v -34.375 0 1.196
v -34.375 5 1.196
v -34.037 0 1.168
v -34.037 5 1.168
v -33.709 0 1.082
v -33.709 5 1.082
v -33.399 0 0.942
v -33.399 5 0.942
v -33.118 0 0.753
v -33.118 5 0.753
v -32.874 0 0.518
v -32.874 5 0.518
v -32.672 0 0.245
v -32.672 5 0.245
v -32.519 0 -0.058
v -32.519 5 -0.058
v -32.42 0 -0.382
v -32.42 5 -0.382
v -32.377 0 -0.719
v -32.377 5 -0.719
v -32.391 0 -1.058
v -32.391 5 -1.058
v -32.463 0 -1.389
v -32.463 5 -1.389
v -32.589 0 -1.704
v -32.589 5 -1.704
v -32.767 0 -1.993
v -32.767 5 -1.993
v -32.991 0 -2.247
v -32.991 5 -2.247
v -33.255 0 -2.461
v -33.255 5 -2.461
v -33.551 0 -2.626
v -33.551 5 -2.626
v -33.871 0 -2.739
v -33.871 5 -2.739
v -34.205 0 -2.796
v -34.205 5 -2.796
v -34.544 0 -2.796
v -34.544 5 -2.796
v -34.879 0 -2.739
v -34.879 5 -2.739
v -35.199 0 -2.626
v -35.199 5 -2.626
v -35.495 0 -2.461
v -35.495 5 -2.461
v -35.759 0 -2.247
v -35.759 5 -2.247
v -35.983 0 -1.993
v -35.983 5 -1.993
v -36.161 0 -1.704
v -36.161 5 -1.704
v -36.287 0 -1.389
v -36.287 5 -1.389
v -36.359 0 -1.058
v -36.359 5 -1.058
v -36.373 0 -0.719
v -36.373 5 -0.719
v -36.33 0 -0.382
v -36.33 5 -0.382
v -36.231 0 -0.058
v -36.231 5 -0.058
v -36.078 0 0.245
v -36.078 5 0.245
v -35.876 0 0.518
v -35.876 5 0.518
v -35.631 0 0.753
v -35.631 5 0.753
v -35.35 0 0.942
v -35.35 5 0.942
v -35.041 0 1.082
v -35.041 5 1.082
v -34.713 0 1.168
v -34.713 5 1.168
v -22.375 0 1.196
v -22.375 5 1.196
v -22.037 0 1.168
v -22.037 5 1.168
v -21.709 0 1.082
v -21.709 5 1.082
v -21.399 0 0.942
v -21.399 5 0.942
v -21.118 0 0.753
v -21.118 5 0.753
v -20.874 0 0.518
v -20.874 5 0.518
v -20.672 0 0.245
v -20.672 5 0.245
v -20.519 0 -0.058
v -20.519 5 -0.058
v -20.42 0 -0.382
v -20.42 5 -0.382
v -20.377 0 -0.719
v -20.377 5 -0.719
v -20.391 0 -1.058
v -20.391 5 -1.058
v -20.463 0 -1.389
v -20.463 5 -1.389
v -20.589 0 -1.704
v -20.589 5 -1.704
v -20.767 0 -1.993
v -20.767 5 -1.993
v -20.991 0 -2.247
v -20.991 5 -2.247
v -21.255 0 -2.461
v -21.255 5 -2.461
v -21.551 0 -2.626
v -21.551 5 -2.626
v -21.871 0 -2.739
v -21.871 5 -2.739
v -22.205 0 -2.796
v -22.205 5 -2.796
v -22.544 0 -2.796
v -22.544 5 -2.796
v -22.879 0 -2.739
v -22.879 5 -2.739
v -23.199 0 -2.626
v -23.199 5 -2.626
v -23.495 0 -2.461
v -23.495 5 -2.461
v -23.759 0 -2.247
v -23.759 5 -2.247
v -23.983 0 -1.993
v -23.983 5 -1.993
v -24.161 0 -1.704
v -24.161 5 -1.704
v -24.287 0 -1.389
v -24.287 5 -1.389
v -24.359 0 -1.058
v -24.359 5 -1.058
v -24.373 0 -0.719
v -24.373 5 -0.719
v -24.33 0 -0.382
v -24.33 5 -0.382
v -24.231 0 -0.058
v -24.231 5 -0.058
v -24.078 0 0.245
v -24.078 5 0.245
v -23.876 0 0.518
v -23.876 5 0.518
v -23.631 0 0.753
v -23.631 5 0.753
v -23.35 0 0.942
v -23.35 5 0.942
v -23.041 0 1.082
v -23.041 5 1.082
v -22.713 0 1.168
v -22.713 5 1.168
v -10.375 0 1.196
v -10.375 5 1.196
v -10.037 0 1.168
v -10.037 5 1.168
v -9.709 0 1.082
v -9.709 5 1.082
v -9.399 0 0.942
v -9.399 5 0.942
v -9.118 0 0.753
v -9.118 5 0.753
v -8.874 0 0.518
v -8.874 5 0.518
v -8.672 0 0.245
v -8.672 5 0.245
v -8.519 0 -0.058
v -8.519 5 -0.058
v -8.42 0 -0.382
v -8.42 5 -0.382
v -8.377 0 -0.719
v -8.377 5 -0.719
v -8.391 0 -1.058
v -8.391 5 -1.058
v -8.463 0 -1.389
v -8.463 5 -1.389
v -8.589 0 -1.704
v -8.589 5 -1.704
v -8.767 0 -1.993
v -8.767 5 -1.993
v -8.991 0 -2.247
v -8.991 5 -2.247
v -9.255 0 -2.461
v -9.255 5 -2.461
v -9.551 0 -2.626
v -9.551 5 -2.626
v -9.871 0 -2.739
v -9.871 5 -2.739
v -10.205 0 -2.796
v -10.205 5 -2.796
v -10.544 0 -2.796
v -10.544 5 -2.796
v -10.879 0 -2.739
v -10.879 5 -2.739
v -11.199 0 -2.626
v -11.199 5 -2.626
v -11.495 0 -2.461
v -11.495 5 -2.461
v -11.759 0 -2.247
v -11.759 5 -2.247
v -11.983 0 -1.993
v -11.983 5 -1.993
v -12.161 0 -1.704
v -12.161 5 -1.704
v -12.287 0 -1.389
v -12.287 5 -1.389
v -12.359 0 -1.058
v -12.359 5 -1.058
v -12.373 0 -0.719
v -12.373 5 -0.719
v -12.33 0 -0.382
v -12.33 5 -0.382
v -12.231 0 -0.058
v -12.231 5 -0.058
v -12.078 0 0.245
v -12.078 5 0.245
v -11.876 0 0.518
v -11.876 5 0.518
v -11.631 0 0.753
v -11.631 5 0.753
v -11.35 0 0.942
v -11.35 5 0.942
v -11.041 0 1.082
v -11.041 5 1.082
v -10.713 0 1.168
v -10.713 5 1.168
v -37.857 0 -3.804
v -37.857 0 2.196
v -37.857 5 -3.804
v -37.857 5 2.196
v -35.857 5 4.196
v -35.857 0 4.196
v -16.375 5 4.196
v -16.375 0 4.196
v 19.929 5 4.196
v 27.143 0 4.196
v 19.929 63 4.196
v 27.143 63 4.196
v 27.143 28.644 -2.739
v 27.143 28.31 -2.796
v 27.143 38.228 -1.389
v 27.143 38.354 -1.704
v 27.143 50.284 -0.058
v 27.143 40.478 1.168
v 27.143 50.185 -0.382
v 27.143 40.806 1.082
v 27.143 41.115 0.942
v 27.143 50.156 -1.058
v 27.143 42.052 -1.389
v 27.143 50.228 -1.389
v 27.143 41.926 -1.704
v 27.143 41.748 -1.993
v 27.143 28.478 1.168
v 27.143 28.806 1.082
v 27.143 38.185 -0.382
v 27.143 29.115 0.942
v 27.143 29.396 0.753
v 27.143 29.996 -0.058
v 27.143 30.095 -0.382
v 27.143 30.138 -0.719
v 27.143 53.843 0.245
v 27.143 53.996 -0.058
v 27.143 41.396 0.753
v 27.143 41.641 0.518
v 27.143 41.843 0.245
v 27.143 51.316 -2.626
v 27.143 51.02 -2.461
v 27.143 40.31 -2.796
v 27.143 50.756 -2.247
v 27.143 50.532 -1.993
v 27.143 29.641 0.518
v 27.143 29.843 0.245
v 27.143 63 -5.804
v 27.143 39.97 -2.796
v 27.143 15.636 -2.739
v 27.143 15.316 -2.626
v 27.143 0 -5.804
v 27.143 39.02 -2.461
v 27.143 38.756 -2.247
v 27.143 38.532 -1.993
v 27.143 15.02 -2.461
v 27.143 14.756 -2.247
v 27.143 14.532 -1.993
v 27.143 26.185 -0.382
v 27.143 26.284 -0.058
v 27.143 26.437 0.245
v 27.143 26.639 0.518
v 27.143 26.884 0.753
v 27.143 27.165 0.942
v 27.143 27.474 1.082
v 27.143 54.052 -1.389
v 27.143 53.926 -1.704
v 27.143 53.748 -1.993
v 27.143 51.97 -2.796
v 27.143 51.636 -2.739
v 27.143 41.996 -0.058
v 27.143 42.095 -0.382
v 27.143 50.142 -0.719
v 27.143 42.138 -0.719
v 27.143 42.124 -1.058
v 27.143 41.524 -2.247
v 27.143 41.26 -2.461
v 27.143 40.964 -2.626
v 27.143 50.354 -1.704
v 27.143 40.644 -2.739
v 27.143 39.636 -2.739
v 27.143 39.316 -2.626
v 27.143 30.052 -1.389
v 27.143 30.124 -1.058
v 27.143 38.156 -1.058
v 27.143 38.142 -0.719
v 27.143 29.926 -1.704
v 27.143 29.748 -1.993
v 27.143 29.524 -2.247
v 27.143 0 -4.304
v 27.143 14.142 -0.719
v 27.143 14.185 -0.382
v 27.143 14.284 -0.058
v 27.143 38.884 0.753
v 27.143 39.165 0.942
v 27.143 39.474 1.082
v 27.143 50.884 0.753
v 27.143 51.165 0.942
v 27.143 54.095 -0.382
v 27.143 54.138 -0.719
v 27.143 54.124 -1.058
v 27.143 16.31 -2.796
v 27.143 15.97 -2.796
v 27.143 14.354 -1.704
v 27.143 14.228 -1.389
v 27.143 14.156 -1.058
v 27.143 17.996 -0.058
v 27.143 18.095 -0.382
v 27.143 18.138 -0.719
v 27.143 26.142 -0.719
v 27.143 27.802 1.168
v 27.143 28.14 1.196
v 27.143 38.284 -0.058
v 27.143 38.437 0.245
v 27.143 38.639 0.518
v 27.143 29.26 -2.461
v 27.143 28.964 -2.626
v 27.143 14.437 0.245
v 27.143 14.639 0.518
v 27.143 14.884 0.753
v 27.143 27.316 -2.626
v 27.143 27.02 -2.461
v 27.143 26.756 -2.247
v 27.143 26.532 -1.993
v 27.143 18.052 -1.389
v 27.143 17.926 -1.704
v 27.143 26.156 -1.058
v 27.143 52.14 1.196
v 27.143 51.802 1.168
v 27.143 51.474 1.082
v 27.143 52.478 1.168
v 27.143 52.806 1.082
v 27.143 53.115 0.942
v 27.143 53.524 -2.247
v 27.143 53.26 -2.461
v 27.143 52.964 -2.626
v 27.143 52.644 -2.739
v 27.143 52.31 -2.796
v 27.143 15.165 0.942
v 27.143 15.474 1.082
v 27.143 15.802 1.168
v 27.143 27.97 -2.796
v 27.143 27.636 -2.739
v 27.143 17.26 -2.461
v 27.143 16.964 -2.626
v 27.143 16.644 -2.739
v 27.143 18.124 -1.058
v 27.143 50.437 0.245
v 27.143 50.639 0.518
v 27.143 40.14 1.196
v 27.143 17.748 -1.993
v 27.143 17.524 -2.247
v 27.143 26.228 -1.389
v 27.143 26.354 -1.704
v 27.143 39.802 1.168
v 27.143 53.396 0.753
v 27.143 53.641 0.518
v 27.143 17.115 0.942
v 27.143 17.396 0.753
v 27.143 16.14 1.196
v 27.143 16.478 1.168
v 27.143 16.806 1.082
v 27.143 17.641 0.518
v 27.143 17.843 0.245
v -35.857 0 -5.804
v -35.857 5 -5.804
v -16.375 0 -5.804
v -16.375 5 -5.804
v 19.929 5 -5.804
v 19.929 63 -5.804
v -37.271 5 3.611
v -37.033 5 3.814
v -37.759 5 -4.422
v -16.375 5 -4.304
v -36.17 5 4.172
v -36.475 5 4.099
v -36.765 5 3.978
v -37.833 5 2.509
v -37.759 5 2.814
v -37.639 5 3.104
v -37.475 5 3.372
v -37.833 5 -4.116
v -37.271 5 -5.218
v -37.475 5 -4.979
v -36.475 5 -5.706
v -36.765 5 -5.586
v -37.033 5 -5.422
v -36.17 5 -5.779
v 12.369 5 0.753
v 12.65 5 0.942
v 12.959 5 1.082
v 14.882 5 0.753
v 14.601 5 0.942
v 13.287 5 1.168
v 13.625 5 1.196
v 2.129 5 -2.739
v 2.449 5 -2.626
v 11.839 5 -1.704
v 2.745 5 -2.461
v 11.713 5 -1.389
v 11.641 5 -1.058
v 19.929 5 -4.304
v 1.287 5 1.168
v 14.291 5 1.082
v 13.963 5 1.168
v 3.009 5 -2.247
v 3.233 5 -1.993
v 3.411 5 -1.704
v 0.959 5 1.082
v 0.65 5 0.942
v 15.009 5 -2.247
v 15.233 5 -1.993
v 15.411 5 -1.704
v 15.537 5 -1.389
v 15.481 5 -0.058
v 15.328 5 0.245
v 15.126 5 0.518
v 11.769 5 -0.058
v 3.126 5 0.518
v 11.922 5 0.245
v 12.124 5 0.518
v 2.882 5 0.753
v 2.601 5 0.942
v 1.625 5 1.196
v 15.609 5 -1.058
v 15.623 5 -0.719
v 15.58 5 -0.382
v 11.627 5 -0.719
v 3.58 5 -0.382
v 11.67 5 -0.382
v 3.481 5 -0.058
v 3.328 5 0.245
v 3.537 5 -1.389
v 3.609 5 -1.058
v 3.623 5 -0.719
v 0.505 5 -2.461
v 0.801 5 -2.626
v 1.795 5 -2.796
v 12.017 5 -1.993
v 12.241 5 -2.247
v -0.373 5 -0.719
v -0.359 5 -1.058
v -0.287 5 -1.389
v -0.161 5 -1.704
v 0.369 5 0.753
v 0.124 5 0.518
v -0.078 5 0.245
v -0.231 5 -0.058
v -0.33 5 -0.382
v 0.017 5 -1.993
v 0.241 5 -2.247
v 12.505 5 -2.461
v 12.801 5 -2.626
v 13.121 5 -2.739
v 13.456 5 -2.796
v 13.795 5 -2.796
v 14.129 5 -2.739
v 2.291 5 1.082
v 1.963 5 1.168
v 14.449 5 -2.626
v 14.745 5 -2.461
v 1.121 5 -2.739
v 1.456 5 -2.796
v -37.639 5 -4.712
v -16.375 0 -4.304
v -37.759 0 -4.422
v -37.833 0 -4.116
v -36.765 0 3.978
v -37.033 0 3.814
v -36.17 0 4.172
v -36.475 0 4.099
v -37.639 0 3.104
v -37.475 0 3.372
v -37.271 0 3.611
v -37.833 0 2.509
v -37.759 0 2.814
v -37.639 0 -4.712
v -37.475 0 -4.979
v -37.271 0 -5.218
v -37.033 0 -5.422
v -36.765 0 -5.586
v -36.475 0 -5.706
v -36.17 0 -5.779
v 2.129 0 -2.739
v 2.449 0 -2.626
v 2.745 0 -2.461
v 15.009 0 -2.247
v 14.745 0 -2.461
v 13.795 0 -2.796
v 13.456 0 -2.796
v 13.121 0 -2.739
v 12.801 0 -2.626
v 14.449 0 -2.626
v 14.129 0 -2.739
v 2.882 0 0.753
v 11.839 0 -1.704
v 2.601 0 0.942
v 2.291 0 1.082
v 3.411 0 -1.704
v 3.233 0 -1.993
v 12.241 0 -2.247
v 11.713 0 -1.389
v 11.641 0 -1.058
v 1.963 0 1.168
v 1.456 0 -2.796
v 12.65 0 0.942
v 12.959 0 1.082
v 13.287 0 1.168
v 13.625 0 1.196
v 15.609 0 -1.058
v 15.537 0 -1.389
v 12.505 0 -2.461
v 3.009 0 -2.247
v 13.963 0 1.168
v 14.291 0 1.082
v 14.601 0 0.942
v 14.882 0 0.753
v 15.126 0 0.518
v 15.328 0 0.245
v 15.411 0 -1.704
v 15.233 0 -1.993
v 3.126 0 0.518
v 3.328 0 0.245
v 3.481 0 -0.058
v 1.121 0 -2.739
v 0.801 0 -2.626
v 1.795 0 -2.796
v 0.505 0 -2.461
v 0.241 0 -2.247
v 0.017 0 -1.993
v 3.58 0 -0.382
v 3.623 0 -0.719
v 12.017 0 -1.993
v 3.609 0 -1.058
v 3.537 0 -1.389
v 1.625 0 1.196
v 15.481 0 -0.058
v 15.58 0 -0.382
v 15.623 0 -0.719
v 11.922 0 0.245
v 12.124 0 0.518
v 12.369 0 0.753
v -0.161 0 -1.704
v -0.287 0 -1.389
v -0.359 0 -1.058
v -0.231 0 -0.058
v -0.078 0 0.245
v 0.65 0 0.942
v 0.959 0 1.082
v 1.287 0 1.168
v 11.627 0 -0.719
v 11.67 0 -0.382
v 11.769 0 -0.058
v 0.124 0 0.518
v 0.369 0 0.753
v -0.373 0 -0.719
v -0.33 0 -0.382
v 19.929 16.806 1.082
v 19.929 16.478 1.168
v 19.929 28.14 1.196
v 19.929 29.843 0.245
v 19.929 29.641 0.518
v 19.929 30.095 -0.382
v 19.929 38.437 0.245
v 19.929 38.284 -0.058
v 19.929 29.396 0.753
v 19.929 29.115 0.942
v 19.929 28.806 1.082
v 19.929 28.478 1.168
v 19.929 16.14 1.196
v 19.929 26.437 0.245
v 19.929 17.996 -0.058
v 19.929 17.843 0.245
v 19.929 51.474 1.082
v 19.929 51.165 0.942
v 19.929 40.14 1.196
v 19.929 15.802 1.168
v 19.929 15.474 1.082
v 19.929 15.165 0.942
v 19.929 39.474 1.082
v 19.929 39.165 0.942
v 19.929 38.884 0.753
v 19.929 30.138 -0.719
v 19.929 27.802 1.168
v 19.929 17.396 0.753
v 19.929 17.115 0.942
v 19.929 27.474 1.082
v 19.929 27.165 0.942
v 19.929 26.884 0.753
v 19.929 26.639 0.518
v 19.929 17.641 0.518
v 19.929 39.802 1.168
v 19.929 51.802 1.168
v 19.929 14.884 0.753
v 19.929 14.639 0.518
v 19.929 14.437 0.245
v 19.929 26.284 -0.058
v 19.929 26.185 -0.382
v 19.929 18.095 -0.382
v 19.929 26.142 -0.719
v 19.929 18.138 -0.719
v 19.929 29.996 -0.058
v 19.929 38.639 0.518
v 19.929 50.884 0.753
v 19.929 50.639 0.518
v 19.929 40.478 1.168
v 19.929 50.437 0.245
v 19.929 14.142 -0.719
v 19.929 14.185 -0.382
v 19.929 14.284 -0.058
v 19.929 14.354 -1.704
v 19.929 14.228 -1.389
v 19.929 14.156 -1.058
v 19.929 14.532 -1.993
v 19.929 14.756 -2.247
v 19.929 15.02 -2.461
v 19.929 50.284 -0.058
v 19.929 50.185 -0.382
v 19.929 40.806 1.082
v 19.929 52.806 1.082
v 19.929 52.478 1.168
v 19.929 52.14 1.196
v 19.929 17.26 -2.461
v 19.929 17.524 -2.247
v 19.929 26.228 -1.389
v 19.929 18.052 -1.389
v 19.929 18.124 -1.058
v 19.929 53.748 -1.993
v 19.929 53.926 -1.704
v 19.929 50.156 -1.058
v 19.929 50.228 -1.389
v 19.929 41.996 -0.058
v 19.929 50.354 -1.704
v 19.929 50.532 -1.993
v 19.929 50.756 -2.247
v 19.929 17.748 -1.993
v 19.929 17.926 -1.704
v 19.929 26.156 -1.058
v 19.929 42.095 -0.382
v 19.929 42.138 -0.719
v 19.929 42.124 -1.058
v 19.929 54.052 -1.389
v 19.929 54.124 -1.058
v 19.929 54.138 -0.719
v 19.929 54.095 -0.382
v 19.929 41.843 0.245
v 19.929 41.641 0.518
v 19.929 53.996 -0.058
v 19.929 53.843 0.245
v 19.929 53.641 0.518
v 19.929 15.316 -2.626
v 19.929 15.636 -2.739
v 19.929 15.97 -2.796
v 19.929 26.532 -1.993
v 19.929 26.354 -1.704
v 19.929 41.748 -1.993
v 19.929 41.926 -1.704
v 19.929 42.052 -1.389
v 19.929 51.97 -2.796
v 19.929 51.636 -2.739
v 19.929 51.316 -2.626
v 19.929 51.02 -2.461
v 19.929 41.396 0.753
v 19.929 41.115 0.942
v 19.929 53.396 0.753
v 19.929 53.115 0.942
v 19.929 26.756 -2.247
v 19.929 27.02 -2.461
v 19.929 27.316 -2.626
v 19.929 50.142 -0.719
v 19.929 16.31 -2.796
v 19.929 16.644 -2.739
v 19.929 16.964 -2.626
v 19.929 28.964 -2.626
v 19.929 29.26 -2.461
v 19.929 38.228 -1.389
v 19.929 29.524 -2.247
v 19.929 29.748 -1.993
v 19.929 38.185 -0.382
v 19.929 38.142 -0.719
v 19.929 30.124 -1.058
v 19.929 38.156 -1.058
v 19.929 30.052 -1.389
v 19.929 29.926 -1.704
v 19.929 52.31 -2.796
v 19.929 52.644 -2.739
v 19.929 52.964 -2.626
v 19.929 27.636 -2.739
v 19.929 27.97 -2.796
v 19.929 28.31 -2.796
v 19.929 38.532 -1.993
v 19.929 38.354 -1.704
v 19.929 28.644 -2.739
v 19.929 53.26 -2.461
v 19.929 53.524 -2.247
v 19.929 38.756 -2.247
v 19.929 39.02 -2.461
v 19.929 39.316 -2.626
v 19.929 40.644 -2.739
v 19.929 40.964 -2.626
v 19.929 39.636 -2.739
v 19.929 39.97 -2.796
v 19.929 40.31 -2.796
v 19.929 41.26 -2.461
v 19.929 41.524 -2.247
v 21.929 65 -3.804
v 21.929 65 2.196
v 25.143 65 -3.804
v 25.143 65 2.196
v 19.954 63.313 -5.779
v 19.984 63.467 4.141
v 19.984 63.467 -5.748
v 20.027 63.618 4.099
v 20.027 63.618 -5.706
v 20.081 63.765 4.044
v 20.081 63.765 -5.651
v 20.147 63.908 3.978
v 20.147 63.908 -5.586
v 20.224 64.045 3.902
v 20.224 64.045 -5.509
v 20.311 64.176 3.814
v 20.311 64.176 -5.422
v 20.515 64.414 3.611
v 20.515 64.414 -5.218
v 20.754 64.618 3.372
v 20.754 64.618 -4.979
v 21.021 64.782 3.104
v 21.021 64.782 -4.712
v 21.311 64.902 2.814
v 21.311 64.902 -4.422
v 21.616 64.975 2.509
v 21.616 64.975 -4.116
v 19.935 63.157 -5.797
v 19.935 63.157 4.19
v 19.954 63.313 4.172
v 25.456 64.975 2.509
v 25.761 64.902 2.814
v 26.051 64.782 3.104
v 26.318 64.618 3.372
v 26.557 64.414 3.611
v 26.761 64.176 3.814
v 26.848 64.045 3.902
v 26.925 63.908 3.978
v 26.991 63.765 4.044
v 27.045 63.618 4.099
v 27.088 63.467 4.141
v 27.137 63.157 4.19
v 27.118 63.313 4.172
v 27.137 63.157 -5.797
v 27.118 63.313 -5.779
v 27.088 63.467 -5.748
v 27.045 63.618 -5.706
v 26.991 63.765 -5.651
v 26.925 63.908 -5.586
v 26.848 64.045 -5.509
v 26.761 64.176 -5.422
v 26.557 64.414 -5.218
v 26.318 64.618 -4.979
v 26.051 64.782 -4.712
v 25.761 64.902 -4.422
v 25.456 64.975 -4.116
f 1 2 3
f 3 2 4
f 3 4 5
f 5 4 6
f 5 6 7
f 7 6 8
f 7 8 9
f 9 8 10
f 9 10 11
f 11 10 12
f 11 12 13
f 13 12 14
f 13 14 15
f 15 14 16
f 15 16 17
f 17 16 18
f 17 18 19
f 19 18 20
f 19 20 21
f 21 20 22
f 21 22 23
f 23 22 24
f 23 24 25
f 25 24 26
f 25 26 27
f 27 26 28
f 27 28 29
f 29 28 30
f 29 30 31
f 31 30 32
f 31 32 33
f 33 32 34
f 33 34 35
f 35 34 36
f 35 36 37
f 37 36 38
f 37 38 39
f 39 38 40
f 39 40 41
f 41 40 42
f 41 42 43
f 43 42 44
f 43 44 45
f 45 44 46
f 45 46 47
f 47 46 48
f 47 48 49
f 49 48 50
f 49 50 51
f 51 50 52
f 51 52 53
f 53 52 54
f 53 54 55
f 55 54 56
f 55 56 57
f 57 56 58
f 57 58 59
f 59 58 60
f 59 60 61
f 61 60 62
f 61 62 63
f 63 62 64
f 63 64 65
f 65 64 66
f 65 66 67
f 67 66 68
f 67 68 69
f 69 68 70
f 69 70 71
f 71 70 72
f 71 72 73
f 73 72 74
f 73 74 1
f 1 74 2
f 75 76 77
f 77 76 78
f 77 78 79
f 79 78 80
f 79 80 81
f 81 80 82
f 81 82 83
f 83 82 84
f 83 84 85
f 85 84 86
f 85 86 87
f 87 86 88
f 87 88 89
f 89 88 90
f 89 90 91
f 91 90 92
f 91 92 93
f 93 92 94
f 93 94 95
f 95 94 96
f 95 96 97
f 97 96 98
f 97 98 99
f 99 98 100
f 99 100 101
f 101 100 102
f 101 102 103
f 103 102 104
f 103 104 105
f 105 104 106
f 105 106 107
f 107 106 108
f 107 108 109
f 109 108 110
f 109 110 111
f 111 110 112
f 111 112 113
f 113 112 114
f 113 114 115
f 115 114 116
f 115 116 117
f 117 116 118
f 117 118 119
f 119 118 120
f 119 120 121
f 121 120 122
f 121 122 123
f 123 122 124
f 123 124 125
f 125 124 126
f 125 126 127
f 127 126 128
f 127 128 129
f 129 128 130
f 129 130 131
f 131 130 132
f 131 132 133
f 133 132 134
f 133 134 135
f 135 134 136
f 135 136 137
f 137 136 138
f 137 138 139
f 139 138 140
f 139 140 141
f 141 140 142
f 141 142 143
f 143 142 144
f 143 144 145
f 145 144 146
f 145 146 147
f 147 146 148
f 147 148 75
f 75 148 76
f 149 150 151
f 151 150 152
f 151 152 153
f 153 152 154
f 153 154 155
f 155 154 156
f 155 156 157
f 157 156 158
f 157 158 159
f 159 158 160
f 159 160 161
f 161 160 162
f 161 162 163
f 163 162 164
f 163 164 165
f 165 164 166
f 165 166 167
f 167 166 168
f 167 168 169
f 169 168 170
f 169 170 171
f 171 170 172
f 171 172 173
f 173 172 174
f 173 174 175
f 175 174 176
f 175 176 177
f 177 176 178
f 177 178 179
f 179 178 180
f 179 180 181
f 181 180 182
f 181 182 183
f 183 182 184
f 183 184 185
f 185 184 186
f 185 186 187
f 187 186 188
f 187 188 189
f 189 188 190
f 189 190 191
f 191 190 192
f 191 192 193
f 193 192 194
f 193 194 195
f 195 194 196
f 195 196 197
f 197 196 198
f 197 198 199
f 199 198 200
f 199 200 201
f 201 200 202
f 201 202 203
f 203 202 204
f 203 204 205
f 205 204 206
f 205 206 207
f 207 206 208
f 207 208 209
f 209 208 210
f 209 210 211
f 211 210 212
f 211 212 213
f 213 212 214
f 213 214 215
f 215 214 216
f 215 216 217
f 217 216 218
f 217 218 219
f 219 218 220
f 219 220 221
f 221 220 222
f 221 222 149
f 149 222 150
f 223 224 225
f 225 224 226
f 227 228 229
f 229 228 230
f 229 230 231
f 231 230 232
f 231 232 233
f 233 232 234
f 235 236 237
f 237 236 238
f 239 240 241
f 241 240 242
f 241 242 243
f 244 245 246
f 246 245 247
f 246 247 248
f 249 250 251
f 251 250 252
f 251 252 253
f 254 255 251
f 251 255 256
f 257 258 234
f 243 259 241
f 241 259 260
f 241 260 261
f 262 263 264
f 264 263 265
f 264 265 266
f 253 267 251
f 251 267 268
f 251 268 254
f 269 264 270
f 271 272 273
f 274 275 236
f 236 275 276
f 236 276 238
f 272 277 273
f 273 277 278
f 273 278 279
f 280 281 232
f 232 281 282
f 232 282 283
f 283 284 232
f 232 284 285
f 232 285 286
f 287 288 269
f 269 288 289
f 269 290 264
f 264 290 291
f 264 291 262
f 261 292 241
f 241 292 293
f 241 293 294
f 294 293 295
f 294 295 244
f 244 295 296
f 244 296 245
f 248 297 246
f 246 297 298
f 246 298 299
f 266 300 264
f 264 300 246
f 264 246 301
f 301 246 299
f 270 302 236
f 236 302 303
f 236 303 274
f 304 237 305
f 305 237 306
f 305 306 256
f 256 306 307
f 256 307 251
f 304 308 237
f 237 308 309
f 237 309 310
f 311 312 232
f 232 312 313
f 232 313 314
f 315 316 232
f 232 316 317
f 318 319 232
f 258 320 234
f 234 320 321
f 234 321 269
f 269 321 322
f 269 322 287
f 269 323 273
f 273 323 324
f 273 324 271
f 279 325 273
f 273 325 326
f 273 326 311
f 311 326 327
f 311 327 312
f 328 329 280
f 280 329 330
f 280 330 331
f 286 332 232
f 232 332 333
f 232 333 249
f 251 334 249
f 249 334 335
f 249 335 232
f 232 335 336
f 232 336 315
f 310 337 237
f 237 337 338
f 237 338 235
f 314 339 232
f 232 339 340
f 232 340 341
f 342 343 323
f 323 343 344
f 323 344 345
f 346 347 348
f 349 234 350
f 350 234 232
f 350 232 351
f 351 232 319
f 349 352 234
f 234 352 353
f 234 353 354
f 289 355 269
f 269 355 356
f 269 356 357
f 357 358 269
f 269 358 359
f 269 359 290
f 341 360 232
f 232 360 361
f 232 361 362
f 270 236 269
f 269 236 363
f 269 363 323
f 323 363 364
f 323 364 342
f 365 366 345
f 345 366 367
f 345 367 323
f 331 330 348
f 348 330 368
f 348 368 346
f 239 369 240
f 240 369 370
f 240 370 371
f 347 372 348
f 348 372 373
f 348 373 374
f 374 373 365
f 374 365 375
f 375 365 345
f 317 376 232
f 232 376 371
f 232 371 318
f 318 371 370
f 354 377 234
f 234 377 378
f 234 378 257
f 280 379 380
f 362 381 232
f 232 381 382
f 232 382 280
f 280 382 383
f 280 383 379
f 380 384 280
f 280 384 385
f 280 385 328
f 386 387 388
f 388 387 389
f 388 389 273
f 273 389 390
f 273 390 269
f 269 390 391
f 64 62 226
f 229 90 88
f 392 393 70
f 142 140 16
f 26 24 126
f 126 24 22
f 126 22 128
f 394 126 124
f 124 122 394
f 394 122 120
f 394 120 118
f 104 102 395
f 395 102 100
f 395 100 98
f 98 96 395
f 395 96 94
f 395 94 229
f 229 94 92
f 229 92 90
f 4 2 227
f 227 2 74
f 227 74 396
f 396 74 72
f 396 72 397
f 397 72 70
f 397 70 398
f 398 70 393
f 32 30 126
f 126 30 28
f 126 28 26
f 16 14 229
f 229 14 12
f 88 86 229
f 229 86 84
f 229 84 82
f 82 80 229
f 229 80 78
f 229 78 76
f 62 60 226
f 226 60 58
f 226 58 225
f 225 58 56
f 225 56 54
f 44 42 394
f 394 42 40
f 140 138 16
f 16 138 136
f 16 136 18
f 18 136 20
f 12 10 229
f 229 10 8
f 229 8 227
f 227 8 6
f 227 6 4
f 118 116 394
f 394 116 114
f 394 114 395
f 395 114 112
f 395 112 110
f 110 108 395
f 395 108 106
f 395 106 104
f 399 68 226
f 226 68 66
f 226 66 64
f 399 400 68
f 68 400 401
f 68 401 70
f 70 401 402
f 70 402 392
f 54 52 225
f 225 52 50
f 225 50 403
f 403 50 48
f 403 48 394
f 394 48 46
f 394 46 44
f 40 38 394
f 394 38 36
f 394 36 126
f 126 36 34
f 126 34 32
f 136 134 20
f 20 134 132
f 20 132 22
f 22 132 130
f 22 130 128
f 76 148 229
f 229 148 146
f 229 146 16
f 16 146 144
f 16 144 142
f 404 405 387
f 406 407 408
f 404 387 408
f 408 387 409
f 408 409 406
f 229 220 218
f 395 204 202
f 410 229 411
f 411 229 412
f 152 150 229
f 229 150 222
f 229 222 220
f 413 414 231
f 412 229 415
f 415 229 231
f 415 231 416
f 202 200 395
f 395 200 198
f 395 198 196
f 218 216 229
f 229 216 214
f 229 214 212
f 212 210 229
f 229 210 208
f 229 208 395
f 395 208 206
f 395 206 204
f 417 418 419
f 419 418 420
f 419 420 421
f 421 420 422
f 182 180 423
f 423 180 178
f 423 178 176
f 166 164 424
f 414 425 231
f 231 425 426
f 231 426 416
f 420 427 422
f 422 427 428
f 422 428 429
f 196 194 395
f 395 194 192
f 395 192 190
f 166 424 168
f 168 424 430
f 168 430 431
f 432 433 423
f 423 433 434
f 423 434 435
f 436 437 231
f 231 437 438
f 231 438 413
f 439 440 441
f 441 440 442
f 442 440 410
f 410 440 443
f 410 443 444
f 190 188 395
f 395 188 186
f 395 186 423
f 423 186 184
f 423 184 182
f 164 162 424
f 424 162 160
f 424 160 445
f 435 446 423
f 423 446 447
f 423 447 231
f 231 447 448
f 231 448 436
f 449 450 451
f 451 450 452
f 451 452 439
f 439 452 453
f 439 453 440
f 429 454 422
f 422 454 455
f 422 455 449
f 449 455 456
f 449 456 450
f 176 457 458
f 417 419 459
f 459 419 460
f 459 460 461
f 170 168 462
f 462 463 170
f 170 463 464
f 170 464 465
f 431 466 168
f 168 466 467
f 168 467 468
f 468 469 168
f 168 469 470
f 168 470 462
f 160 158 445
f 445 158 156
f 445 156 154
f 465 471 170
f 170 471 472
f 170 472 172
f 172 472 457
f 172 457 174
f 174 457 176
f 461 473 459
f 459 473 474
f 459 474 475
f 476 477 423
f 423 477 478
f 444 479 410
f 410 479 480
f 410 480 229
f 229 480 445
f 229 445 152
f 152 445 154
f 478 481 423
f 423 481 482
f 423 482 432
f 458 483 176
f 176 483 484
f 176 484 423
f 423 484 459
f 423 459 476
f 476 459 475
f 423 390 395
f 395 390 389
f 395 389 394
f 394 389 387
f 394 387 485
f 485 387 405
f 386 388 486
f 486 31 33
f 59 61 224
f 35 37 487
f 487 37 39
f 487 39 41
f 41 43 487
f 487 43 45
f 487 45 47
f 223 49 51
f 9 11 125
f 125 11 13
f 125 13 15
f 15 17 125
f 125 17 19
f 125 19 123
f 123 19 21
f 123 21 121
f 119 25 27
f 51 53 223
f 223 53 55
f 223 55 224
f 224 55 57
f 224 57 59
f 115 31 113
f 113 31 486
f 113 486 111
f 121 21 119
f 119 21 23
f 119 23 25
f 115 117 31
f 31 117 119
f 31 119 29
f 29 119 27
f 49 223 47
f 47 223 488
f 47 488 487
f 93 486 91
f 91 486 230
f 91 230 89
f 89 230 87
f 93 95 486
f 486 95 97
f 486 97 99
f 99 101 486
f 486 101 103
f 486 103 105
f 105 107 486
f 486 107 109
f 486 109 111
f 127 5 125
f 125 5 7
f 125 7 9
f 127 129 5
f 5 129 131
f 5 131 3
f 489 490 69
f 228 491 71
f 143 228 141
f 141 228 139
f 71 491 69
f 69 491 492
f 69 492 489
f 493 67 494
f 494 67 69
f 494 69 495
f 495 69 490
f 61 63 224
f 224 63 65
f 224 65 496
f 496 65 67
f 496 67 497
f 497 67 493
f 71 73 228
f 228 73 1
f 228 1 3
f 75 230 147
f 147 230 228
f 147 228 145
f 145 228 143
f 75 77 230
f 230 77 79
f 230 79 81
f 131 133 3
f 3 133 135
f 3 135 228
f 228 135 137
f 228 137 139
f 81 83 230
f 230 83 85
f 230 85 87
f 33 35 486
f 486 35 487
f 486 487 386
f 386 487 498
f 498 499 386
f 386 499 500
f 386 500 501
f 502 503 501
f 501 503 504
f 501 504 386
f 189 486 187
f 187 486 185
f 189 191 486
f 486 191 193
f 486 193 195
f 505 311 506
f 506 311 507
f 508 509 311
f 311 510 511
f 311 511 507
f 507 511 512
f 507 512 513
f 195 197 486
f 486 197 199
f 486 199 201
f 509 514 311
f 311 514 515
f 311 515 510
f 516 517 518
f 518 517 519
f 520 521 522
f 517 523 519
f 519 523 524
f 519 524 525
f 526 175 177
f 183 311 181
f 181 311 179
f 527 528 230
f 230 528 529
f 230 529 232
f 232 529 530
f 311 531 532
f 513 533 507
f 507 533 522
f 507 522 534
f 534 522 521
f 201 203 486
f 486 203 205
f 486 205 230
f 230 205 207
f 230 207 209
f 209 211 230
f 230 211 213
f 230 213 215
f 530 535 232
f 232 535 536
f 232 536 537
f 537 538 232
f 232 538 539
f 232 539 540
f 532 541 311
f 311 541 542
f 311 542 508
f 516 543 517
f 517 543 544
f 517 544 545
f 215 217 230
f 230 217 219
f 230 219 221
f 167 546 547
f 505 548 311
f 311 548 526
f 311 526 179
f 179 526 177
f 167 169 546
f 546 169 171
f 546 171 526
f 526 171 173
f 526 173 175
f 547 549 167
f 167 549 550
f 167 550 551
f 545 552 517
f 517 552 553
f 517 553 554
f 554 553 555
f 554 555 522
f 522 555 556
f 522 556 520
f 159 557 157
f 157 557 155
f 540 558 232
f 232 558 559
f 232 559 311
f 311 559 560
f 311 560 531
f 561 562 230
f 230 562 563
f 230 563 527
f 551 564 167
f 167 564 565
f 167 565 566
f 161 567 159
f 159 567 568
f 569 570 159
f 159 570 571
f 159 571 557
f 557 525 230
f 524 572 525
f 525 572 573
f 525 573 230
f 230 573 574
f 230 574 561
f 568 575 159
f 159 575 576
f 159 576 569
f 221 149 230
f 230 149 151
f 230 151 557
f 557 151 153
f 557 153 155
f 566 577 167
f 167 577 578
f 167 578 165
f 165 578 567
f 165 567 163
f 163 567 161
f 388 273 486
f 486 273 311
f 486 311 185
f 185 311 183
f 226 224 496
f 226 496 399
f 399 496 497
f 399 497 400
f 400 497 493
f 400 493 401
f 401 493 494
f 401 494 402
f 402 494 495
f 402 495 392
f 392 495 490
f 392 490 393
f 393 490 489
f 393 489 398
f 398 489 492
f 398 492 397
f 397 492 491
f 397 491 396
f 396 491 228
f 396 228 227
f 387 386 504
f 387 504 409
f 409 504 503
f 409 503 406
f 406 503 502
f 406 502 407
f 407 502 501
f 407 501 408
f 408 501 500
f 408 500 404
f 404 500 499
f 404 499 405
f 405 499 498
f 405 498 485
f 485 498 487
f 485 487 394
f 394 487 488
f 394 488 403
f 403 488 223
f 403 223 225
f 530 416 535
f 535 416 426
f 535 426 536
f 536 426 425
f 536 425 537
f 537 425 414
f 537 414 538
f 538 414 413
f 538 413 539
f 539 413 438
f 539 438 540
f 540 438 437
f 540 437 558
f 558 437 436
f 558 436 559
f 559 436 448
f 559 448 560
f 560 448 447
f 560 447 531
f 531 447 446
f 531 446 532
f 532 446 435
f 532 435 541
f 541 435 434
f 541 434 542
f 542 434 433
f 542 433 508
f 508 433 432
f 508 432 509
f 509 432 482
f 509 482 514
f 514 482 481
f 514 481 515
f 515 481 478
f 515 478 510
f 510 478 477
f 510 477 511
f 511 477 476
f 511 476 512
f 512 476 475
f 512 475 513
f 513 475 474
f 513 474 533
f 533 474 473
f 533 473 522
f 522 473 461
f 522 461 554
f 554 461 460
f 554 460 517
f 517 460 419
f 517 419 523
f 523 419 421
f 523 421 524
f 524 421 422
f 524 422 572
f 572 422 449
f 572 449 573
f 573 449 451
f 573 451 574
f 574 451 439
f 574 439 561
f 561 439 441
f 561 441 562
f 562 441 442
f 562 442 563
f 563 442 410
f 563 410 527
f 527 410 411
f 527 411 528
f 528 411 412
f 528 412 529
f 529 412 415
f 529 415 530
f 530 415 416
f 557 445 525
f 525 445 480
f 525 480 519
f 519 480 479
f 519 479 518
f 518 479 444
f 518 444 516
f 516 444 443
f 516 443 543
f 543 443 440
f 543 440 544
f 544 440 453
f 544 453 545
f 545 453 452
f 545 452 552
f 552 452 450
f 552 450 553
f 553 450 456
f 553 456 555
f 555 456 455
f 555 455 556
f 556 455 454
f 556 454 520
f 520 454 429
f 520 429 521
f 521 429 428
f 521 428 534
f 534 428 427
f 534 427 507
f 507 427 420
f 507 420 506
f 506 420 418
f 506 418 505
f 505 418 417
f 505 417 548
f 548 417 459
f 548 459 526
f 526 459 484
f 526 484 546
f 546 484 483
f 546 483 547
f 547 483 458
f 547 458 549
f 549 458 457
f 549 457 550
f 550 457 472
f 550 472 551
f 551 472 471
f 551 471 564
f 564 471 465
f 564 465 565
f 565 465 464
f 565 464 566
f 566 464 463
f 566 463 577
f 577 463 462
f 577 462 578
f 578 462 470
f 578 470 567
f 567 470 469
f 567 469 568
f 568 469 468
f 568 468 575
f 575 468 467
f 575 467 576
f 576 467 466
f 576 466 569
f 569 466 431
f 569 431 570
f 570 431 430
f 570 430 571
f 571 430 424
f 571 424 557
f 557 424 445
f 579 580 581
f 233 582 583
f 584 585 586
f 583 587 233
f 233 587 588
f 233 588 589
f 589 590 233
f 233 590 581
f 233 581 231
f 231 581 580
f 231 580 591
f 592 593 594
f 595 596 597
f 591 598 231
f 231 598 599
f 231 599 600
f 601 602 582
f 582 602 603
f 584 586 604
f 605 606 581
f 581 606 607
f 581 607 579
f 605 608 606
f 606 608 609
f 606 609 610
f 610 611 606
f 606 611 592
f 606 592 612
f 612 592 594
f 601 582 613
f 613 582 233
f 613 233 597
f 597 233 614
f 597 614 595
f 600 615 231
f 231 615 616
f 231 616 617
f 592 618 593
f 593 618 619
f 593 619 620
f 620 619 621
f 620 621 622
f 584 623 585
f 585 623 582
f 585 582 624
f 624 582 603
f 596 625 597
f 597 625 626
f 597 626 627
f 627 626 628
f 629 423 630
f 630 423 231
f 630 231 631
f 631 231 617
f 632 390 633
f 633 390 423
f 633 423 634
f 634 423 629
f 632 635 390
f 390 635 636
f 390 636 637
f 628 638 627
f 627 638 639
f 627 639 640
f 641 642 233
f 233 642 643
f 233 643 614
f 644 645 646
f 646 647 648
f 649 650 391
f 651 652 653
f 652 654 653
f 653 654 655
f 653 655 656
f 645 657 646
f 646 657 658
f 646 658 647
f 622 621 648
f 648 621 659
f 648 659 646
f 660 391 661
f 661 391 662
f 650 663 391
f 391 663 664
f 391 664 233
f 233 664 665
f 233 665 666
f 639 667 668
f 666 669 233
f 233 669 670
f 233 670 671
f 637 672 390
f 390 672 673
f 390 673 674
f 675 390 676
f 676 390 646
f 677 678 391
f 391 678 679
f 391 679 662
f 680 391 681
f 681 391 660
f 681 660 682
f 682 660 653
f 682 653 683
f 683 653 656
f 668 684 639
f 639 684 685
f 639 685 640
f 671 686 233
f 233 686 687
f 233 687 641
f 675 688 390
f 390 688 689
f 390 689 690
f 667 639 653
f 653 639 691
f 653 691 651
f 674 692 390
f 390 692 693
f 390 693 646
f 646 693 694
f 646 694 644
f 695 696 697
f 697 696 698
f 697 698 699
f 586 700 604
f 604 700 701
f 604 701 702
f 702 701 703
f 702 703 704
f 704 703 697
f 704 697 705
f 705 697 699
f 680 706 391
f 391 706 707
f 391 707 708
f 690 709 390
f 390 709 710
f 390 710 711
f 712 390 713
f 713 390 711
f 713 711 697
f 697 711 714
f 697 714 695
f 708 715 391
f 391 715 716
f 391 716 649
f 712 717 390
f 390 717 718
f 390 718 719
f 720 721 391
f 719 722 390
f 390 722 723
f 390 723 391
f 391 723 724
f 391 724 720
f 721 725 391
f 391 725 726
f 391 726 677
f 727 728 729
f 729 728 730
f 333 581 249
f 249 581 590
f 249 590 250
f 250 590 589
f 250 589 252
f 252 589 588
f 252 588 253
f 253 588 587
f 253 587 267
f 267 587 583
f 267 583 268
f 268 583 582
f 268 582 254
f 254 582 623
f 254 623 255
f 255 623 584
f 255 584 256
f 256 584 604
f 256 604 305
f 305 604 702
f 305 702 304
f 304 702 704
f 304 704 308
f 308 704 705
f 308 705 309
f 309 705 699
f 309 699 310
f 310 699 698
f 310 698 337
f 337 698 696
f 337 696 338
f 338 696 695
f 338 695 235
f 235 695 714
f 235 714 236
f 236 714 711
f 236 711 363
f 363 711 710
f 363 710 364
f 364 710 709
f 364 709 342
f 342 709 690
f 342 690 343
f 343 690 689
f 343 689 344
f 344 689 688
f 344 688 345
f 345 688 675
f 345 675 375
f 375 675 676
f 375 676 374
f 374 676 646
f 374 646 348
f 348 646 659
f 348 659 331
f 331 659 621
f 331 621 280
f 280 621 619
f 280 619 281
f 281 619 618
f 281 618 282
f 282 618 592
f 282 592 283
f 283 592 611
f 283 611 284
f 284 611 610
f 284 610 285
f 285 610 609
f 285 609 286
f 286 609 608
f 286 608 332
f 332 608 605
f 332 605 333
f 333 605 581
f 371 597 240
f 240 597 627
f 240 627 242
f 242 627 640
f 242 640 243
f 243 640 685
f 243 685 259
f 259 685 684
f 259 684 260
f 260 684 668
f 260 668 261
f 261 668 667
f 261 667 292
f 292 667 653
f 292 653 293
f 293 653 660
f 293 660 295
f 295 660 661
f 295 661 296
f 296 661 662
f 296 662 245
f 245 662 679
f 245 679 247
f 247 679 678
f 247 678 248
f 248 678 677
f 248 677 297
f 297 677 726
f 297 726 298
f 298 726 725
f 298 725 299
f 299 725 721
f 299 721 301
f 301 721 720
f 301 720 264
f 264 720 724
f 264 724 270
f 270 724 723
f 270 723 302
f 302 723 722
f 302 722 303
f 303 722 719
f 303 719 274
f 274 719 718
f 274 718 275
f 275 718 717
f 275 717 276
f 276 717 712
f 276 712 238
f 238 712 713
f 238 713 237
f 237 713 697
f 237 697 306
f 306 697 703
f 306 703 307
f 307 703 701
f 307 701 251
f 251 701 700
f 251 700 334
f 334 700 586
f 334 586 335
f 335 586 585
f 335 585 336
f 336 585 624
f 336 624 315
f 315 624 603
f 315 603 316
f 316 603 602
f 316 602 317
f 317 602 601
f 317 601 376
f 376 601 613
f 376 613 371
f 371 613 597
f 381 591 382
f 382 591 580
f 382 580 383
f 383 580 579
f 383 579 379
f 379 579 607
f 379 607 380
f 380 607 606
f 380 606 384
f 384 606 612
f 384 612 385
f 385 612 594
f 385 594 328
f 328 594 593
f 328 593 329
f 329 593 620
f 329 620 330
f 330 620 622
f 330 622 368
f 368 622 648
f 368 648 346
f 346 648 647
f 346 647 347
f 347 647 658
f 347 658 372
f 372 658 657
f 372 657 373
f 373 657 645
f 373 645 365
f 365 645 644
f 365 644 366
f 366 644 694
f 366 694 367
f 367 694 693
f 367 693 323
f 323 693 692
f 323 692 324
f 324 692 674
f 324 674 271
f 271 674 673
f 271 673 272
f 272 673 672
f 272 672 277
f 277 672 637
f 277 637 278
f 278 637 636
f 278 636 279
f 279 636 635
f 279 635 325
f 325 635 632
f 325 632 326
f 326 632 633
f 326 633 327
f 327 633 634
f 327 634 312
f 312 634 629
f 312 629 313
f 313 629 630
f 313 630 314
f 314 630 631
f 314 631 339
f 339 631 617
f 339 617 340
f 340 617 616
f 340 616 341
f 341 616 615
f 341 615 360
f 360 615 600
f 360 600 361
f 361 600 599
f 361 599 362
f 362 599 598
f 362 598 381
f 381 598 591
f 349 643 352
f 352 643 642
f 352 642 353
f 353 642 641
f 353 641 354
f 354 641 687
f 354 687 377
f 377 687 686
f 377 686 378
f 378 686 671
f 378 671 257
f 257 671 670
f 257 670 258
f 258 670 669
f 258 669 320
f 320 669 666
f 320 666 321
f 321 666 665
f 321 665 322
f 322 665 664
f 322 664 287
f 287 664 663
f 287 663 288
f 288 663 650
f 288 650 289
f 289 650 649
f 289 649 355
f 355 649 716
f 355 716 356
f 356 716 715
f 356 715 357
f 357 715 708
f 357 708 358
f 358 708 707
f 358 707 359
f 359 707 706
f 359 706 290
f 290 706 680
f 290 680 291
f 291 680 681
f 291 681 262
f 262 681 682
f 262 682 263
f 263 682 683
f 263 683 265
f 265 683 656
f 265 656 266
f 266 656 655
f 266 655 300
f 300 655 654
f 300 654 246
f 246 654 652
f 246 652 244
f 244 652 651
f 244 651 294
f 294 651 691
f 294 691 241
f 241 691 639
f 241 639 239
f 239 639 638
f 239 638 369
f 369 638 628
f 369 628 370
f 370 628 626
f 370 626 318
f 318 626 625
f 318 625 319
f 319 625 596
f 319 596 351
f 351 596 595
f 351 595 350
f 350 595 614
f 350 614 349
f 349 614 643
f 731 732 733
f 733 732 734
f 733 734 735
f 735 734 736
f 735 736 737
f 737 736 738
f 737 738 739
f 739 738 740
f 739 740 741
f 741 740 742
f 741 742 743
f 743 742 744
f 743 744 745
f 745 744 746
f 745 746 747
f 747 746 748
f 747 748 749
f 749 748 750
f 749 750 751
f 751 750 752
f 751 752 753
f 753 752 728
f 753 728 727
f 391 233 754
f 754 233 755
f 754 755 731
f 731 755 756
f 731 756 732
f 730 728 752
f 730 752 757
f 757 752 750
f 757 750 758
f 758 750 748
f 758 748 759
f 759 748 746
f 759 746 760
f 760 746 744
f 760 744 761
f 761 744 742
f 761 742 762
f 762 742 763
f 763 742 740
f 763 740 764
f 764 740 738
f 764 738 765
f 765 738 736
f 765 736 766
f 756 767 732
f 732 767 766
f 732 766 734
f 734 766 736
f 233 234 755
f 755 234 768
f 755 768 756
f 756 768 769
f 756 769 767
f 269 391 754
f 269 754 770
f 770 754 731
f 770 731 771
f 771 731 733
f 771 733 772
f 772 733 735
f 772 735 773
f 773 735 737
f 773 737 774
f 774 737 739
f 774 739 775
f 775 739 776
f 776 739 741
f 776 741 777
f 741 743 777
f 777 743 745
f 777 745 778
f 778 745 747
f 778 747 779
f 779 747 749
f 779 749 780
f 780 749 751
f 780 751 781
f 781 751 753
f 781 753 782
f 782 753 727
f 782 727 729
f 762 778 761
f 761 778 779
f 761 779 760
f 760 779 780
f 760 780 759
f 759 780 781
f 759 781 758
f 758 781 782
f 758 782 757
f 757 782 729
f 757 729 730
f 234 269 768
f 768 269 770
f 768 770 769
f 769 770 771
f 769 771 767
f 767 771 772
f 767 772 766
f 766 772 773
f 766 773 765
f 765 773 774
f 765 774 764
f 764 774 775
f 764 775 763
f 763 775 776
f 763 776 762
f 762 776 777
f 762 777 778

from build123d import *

# Parameters (mm, degrees)
SKETCH2_W           = 65
SKETCH2_H           = 10
BOSS_EXTRUDE1_DEPTH = 5
FILLET1_R           = 2
FILLET2_R           = 2
SKETCH3_R           = 2
CUT_EXTRUDE1_DEPTH  = 15
LPATTERN1_COUNT     = 5
LPATTERN1_PITCH     = 12
SKETCH4_W           = 7.213630723
SKETCH4_H           = 10
BOSS_EXTRUDE2_DEPTH = 60
SKETCH5_R           = 2
CUT_EXTRUDE2_DEPTH  = 60
LPATTERN2_COUNT     = 3
LPATTERN2_PITCH     = 12
LPATTERN2_COL_COUNT = 2
LPATTERN2_COL_PITCH = 12
FILLET3_R           = 2


with BuildPart() as part:
    # Sketch2 → Boss-Extrude1 (new body)
    with BuildSketch(Plane(origin=(0, 0, 0), x_dir=(1, 0, 0), z_dir=(0, 1, 0))):
        with Locations((-5.357142857, 0.803571429)):
            Rectangle(SKETCH2_W, SKETCH2_H)
    extrude(amount=BOSS_EXTRUDE1_DEPTH)

    # Fillet1
    fillet1_edges = [part.edges().sort_by_distance(p)[0] for p in [
        (-37.857142857, 2.5, 4.196428571),
    ]]
    fillet(fillet1_edges, radius=FILLET1_R)

    # Fillet2
    fillet2_edges = [part.edges().sort_by_distance(p)[0] for p in [
        (-37.857142857, 2.5, -5.803571429),
    ]]
    fillet(fillet2_edges, radius=FILLET2_R)

    # Sketch3 → Cut-Extrude1 (cut)
    with BuildSketch(Plane(origin=(0, 5, 0), x_dir=(1, 0, 0), z_dir=(0, 1, 0))):
        with Locations(Location((13.625145437, 0.803571429, 0), (0, 0, 270))):
            Circle(SKETCH3_R)
    cut_extrude1 = extrude(amount=-CUT_EXTRUDE1_DEPTH, mode=Mode.SUBTRACT)

    # LPattern1: Cut-Extrude1 ×5
    with Locations(*[(-i * LPATTERN1_PITCH, 0, 0) for i in range(1, LPATTERN1_COUNT)]):
        add(cut_extrude1, mode=Mode.SUBTRACT)

    # Sketch4 → Boss-Extrude2 (add)
    with BuildSketch(Plane(origin=(0, 5, 0), x_dir=(1, 0, 0), z_dir=(0, 1, 0))):
        with Locations((23.536041782, 0.803571429)):
            Rectangle(SKETCH4_W, SKETCH4_H)
    extrude(amount=BOSS_EXTRUDE2_DEPTH)

    # Sketch5 → Cut-Extrude2 (cut)
    with BuildSketch(Plane.ZY.offset(-19.92922642)):
        with Locations((-0.803571429, 28.14)):
            Circle(SKETCH5_R)
    cut_extrude2 = extrude(amount=-CUT_EXTRUDE2_DEPTH, mode=Mode.SUBTRACT)

    # LPattern2: Cut-Extrude2 ×3
    with Locations(*[(0, i * LPATTERN2_PITCH, 0) for i in range(1, LPATTERN2_COUNT)]):
        add(cut_extrude2, mode=Mode.SUBTRACT)

    # LPattern2 col: Cut-Extrude2 ×2
    with Locations(*[(0, -i * LPATTERN2_COL_PITCH, 0) for i in range(1, LPATTERN2_COL_COUNT)]):
        add(cut_extrude2, mode=Mode.SUBTRACT)

    # Fillet3
    fillet3_edges = [part.edges().sort_by_distance(p)[0] for p in [
        (27.142857143, 65, -0.803571429),
        (23.536041781, 65, -5.803571429),
        (19.92922642, 65, -0.803571429),
        (23.536041781, 65, 4.196428571),
    ]]
    fillet(fillet3_edges, radius=FILLET3_R)


solid = part.part
